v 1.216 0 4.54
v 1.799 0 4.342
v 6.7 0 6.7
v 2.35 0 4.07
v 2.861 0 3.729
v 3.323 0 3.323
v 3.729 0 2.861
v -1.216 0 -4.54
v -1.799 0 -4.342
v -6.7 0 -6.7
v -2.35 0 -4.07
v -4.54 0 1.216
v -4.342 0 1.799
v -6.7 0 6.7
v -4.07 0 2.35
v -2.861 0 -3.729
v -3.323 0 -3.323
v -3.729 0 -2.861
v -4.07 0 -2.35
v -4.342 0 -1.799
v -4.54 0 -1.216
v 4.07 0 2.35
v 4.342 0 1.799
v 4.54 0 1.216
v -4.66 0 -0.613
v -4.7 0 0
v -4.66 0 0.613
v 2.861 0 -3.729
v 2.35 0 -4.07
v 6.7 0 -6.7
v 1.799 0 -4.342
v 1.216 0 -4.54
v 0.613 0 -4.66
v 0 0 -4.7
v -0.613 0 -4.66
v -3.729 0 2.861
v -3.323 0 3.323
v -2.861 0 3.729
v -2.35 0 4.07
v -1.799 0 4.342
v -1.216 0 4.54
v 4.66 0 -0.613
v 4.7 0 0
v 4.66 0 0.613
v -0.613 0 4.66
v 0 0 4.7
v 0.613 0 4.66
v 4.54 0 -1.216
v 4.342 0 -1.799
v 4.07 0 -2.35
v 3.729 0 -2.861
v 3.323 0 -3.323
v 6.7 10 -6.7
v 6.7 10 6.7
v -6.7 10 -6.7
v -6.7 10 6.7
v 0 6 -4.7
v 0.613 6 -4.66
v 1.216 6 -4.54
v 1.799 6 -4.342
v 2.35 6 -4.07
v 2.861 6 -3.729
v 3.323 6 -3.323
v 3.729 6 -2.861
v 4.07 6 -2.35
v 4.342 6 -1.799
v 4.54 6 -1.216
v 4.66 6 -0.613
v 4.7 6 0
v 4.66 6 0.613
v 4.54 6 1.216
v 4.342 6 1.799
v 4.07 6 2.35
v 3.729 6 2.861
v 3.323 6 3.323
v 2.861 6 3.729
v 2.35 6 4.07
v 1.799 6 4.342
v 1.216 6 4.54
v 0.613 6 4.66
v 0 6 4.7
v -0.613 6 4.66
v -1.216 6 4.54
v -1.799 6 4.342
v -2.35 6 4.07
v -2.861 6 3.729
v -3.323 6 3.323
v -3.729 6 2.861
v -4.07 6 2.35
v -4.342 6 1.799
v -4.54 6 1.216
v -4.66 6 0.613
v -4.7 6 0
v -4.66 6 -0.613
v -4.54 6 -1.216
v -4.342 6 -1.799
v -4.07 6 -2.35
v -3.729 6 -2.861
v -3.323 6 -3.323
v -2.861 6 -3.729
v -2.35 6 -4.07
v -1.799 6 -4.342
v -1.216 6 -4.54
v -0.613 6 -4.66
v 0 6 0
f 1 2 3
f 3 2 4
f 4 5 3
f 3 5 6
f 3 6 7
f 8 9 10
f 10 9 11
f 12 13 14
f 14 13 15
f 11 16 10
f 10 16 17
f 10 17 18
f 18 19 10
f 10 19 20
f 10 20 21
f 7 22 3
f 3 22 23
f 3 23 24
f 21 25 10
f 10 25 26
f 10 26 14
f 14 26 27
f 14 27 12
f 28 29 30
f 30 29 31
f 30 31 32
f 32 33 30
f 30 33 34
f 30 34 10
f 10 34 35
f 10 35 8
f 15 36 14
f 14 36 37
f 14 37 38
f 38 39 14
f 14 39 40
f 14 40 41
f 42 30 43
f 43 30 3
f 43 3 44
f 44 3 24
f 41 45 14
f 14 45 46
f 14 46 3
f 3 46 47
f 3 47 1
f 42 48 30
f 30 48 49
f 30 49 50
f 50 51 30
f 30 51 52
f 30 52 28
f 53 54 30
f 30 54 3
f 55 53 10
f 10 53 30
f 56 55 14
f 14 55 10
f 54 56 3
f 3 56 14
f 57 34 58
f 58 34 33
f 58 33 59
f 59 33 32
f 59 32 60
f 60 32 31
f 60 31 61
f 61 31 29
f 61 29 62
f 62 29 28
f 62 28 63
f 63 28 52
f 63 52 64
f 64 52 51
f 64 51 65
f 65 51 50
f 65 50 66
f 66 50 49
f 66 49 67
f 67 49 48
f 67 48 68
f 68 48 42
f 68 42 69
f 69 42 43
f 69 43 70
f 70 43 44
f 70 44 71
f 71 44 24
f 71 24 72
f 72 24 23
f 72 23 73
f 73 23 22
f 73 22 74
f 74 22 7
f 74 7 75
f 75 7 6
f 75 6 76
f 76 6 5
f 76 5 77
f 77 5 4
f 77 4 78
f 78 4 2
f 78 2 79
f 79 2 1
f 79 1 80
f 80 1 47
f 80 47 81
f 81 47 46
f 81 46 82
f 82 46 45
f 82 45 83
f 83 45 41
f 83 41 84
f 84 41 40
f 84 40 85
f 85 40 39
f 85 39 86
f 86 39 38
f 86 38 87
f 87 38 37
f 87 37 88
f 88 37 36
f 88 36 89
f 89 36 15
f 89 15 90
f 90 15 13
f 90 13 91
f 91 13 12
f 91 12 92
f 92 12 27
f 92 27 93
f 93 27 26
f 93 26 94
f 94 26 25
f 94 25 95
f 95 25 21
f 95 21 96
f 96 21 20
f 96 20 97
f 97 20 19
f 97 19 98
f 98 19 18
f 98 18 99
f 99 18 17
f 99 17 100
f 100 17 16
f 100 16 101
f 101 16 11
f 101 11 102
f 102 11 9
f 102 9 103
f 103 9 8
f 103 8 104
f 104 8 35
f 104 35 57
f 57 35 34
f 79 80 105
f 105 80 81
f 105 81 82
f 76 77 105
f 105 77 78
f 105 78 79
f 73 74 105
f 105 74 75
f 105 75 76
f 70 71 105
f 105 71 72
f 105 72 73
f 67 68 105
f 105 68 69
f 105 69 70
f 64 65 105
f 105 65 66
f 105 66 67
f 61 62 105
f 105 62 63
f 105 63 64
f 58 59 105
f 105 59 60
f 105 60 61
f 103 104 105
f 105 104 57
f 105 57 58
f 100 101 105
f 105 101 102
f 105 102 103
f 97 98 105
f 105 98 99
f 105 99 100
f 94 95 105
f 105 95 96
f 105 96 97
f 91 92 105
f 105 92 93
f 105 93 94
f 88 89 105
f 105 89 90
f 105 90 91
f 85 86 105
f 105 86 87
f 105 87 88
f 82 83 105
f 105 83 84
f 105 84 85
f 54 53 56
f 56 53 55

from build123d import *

# Parameters (mm, degrees)
SKETCH1_R           = 4.7
BOSS_EXTRUDE1_DEPTH = 6
SKETCH2_W           = 13.4
SKETCH2_H           = 13.4
BOSS_EXTRUDE2_DEPTH = 4


with BuildPart() as part:
    # Sketch1 → Boss-Extrude1 (new body)
    with BuildSketch(Plane(origin=(0, 0, 0), x_dir=(1, 0, 0), z_dir=(0, 1, 0))):
        Polygon((0, -6.7), (-6.7, -6.7), (-6.7, 6.7), (6.7, 6.7), (6.7, -6.7), align=None)
        Circle(SKETCH1_R, mode=Mode.SUBTRACT)
    extrude(amount=BOSS_EXTRUDE1_DEPTH)

    # Sketch2 → Boss-Extrude2 (add)
    with BuildSketch(Plane(origin=(0, 6, 0), x_dir=(1, 0, 0), z_dir=(0, 1, 0))):
        Rectangle(SKETCH2_W, SKETCH2_H)
    extrude(amount=BOSS_EXTRUDE2_DEPTH)


solid = part.part
